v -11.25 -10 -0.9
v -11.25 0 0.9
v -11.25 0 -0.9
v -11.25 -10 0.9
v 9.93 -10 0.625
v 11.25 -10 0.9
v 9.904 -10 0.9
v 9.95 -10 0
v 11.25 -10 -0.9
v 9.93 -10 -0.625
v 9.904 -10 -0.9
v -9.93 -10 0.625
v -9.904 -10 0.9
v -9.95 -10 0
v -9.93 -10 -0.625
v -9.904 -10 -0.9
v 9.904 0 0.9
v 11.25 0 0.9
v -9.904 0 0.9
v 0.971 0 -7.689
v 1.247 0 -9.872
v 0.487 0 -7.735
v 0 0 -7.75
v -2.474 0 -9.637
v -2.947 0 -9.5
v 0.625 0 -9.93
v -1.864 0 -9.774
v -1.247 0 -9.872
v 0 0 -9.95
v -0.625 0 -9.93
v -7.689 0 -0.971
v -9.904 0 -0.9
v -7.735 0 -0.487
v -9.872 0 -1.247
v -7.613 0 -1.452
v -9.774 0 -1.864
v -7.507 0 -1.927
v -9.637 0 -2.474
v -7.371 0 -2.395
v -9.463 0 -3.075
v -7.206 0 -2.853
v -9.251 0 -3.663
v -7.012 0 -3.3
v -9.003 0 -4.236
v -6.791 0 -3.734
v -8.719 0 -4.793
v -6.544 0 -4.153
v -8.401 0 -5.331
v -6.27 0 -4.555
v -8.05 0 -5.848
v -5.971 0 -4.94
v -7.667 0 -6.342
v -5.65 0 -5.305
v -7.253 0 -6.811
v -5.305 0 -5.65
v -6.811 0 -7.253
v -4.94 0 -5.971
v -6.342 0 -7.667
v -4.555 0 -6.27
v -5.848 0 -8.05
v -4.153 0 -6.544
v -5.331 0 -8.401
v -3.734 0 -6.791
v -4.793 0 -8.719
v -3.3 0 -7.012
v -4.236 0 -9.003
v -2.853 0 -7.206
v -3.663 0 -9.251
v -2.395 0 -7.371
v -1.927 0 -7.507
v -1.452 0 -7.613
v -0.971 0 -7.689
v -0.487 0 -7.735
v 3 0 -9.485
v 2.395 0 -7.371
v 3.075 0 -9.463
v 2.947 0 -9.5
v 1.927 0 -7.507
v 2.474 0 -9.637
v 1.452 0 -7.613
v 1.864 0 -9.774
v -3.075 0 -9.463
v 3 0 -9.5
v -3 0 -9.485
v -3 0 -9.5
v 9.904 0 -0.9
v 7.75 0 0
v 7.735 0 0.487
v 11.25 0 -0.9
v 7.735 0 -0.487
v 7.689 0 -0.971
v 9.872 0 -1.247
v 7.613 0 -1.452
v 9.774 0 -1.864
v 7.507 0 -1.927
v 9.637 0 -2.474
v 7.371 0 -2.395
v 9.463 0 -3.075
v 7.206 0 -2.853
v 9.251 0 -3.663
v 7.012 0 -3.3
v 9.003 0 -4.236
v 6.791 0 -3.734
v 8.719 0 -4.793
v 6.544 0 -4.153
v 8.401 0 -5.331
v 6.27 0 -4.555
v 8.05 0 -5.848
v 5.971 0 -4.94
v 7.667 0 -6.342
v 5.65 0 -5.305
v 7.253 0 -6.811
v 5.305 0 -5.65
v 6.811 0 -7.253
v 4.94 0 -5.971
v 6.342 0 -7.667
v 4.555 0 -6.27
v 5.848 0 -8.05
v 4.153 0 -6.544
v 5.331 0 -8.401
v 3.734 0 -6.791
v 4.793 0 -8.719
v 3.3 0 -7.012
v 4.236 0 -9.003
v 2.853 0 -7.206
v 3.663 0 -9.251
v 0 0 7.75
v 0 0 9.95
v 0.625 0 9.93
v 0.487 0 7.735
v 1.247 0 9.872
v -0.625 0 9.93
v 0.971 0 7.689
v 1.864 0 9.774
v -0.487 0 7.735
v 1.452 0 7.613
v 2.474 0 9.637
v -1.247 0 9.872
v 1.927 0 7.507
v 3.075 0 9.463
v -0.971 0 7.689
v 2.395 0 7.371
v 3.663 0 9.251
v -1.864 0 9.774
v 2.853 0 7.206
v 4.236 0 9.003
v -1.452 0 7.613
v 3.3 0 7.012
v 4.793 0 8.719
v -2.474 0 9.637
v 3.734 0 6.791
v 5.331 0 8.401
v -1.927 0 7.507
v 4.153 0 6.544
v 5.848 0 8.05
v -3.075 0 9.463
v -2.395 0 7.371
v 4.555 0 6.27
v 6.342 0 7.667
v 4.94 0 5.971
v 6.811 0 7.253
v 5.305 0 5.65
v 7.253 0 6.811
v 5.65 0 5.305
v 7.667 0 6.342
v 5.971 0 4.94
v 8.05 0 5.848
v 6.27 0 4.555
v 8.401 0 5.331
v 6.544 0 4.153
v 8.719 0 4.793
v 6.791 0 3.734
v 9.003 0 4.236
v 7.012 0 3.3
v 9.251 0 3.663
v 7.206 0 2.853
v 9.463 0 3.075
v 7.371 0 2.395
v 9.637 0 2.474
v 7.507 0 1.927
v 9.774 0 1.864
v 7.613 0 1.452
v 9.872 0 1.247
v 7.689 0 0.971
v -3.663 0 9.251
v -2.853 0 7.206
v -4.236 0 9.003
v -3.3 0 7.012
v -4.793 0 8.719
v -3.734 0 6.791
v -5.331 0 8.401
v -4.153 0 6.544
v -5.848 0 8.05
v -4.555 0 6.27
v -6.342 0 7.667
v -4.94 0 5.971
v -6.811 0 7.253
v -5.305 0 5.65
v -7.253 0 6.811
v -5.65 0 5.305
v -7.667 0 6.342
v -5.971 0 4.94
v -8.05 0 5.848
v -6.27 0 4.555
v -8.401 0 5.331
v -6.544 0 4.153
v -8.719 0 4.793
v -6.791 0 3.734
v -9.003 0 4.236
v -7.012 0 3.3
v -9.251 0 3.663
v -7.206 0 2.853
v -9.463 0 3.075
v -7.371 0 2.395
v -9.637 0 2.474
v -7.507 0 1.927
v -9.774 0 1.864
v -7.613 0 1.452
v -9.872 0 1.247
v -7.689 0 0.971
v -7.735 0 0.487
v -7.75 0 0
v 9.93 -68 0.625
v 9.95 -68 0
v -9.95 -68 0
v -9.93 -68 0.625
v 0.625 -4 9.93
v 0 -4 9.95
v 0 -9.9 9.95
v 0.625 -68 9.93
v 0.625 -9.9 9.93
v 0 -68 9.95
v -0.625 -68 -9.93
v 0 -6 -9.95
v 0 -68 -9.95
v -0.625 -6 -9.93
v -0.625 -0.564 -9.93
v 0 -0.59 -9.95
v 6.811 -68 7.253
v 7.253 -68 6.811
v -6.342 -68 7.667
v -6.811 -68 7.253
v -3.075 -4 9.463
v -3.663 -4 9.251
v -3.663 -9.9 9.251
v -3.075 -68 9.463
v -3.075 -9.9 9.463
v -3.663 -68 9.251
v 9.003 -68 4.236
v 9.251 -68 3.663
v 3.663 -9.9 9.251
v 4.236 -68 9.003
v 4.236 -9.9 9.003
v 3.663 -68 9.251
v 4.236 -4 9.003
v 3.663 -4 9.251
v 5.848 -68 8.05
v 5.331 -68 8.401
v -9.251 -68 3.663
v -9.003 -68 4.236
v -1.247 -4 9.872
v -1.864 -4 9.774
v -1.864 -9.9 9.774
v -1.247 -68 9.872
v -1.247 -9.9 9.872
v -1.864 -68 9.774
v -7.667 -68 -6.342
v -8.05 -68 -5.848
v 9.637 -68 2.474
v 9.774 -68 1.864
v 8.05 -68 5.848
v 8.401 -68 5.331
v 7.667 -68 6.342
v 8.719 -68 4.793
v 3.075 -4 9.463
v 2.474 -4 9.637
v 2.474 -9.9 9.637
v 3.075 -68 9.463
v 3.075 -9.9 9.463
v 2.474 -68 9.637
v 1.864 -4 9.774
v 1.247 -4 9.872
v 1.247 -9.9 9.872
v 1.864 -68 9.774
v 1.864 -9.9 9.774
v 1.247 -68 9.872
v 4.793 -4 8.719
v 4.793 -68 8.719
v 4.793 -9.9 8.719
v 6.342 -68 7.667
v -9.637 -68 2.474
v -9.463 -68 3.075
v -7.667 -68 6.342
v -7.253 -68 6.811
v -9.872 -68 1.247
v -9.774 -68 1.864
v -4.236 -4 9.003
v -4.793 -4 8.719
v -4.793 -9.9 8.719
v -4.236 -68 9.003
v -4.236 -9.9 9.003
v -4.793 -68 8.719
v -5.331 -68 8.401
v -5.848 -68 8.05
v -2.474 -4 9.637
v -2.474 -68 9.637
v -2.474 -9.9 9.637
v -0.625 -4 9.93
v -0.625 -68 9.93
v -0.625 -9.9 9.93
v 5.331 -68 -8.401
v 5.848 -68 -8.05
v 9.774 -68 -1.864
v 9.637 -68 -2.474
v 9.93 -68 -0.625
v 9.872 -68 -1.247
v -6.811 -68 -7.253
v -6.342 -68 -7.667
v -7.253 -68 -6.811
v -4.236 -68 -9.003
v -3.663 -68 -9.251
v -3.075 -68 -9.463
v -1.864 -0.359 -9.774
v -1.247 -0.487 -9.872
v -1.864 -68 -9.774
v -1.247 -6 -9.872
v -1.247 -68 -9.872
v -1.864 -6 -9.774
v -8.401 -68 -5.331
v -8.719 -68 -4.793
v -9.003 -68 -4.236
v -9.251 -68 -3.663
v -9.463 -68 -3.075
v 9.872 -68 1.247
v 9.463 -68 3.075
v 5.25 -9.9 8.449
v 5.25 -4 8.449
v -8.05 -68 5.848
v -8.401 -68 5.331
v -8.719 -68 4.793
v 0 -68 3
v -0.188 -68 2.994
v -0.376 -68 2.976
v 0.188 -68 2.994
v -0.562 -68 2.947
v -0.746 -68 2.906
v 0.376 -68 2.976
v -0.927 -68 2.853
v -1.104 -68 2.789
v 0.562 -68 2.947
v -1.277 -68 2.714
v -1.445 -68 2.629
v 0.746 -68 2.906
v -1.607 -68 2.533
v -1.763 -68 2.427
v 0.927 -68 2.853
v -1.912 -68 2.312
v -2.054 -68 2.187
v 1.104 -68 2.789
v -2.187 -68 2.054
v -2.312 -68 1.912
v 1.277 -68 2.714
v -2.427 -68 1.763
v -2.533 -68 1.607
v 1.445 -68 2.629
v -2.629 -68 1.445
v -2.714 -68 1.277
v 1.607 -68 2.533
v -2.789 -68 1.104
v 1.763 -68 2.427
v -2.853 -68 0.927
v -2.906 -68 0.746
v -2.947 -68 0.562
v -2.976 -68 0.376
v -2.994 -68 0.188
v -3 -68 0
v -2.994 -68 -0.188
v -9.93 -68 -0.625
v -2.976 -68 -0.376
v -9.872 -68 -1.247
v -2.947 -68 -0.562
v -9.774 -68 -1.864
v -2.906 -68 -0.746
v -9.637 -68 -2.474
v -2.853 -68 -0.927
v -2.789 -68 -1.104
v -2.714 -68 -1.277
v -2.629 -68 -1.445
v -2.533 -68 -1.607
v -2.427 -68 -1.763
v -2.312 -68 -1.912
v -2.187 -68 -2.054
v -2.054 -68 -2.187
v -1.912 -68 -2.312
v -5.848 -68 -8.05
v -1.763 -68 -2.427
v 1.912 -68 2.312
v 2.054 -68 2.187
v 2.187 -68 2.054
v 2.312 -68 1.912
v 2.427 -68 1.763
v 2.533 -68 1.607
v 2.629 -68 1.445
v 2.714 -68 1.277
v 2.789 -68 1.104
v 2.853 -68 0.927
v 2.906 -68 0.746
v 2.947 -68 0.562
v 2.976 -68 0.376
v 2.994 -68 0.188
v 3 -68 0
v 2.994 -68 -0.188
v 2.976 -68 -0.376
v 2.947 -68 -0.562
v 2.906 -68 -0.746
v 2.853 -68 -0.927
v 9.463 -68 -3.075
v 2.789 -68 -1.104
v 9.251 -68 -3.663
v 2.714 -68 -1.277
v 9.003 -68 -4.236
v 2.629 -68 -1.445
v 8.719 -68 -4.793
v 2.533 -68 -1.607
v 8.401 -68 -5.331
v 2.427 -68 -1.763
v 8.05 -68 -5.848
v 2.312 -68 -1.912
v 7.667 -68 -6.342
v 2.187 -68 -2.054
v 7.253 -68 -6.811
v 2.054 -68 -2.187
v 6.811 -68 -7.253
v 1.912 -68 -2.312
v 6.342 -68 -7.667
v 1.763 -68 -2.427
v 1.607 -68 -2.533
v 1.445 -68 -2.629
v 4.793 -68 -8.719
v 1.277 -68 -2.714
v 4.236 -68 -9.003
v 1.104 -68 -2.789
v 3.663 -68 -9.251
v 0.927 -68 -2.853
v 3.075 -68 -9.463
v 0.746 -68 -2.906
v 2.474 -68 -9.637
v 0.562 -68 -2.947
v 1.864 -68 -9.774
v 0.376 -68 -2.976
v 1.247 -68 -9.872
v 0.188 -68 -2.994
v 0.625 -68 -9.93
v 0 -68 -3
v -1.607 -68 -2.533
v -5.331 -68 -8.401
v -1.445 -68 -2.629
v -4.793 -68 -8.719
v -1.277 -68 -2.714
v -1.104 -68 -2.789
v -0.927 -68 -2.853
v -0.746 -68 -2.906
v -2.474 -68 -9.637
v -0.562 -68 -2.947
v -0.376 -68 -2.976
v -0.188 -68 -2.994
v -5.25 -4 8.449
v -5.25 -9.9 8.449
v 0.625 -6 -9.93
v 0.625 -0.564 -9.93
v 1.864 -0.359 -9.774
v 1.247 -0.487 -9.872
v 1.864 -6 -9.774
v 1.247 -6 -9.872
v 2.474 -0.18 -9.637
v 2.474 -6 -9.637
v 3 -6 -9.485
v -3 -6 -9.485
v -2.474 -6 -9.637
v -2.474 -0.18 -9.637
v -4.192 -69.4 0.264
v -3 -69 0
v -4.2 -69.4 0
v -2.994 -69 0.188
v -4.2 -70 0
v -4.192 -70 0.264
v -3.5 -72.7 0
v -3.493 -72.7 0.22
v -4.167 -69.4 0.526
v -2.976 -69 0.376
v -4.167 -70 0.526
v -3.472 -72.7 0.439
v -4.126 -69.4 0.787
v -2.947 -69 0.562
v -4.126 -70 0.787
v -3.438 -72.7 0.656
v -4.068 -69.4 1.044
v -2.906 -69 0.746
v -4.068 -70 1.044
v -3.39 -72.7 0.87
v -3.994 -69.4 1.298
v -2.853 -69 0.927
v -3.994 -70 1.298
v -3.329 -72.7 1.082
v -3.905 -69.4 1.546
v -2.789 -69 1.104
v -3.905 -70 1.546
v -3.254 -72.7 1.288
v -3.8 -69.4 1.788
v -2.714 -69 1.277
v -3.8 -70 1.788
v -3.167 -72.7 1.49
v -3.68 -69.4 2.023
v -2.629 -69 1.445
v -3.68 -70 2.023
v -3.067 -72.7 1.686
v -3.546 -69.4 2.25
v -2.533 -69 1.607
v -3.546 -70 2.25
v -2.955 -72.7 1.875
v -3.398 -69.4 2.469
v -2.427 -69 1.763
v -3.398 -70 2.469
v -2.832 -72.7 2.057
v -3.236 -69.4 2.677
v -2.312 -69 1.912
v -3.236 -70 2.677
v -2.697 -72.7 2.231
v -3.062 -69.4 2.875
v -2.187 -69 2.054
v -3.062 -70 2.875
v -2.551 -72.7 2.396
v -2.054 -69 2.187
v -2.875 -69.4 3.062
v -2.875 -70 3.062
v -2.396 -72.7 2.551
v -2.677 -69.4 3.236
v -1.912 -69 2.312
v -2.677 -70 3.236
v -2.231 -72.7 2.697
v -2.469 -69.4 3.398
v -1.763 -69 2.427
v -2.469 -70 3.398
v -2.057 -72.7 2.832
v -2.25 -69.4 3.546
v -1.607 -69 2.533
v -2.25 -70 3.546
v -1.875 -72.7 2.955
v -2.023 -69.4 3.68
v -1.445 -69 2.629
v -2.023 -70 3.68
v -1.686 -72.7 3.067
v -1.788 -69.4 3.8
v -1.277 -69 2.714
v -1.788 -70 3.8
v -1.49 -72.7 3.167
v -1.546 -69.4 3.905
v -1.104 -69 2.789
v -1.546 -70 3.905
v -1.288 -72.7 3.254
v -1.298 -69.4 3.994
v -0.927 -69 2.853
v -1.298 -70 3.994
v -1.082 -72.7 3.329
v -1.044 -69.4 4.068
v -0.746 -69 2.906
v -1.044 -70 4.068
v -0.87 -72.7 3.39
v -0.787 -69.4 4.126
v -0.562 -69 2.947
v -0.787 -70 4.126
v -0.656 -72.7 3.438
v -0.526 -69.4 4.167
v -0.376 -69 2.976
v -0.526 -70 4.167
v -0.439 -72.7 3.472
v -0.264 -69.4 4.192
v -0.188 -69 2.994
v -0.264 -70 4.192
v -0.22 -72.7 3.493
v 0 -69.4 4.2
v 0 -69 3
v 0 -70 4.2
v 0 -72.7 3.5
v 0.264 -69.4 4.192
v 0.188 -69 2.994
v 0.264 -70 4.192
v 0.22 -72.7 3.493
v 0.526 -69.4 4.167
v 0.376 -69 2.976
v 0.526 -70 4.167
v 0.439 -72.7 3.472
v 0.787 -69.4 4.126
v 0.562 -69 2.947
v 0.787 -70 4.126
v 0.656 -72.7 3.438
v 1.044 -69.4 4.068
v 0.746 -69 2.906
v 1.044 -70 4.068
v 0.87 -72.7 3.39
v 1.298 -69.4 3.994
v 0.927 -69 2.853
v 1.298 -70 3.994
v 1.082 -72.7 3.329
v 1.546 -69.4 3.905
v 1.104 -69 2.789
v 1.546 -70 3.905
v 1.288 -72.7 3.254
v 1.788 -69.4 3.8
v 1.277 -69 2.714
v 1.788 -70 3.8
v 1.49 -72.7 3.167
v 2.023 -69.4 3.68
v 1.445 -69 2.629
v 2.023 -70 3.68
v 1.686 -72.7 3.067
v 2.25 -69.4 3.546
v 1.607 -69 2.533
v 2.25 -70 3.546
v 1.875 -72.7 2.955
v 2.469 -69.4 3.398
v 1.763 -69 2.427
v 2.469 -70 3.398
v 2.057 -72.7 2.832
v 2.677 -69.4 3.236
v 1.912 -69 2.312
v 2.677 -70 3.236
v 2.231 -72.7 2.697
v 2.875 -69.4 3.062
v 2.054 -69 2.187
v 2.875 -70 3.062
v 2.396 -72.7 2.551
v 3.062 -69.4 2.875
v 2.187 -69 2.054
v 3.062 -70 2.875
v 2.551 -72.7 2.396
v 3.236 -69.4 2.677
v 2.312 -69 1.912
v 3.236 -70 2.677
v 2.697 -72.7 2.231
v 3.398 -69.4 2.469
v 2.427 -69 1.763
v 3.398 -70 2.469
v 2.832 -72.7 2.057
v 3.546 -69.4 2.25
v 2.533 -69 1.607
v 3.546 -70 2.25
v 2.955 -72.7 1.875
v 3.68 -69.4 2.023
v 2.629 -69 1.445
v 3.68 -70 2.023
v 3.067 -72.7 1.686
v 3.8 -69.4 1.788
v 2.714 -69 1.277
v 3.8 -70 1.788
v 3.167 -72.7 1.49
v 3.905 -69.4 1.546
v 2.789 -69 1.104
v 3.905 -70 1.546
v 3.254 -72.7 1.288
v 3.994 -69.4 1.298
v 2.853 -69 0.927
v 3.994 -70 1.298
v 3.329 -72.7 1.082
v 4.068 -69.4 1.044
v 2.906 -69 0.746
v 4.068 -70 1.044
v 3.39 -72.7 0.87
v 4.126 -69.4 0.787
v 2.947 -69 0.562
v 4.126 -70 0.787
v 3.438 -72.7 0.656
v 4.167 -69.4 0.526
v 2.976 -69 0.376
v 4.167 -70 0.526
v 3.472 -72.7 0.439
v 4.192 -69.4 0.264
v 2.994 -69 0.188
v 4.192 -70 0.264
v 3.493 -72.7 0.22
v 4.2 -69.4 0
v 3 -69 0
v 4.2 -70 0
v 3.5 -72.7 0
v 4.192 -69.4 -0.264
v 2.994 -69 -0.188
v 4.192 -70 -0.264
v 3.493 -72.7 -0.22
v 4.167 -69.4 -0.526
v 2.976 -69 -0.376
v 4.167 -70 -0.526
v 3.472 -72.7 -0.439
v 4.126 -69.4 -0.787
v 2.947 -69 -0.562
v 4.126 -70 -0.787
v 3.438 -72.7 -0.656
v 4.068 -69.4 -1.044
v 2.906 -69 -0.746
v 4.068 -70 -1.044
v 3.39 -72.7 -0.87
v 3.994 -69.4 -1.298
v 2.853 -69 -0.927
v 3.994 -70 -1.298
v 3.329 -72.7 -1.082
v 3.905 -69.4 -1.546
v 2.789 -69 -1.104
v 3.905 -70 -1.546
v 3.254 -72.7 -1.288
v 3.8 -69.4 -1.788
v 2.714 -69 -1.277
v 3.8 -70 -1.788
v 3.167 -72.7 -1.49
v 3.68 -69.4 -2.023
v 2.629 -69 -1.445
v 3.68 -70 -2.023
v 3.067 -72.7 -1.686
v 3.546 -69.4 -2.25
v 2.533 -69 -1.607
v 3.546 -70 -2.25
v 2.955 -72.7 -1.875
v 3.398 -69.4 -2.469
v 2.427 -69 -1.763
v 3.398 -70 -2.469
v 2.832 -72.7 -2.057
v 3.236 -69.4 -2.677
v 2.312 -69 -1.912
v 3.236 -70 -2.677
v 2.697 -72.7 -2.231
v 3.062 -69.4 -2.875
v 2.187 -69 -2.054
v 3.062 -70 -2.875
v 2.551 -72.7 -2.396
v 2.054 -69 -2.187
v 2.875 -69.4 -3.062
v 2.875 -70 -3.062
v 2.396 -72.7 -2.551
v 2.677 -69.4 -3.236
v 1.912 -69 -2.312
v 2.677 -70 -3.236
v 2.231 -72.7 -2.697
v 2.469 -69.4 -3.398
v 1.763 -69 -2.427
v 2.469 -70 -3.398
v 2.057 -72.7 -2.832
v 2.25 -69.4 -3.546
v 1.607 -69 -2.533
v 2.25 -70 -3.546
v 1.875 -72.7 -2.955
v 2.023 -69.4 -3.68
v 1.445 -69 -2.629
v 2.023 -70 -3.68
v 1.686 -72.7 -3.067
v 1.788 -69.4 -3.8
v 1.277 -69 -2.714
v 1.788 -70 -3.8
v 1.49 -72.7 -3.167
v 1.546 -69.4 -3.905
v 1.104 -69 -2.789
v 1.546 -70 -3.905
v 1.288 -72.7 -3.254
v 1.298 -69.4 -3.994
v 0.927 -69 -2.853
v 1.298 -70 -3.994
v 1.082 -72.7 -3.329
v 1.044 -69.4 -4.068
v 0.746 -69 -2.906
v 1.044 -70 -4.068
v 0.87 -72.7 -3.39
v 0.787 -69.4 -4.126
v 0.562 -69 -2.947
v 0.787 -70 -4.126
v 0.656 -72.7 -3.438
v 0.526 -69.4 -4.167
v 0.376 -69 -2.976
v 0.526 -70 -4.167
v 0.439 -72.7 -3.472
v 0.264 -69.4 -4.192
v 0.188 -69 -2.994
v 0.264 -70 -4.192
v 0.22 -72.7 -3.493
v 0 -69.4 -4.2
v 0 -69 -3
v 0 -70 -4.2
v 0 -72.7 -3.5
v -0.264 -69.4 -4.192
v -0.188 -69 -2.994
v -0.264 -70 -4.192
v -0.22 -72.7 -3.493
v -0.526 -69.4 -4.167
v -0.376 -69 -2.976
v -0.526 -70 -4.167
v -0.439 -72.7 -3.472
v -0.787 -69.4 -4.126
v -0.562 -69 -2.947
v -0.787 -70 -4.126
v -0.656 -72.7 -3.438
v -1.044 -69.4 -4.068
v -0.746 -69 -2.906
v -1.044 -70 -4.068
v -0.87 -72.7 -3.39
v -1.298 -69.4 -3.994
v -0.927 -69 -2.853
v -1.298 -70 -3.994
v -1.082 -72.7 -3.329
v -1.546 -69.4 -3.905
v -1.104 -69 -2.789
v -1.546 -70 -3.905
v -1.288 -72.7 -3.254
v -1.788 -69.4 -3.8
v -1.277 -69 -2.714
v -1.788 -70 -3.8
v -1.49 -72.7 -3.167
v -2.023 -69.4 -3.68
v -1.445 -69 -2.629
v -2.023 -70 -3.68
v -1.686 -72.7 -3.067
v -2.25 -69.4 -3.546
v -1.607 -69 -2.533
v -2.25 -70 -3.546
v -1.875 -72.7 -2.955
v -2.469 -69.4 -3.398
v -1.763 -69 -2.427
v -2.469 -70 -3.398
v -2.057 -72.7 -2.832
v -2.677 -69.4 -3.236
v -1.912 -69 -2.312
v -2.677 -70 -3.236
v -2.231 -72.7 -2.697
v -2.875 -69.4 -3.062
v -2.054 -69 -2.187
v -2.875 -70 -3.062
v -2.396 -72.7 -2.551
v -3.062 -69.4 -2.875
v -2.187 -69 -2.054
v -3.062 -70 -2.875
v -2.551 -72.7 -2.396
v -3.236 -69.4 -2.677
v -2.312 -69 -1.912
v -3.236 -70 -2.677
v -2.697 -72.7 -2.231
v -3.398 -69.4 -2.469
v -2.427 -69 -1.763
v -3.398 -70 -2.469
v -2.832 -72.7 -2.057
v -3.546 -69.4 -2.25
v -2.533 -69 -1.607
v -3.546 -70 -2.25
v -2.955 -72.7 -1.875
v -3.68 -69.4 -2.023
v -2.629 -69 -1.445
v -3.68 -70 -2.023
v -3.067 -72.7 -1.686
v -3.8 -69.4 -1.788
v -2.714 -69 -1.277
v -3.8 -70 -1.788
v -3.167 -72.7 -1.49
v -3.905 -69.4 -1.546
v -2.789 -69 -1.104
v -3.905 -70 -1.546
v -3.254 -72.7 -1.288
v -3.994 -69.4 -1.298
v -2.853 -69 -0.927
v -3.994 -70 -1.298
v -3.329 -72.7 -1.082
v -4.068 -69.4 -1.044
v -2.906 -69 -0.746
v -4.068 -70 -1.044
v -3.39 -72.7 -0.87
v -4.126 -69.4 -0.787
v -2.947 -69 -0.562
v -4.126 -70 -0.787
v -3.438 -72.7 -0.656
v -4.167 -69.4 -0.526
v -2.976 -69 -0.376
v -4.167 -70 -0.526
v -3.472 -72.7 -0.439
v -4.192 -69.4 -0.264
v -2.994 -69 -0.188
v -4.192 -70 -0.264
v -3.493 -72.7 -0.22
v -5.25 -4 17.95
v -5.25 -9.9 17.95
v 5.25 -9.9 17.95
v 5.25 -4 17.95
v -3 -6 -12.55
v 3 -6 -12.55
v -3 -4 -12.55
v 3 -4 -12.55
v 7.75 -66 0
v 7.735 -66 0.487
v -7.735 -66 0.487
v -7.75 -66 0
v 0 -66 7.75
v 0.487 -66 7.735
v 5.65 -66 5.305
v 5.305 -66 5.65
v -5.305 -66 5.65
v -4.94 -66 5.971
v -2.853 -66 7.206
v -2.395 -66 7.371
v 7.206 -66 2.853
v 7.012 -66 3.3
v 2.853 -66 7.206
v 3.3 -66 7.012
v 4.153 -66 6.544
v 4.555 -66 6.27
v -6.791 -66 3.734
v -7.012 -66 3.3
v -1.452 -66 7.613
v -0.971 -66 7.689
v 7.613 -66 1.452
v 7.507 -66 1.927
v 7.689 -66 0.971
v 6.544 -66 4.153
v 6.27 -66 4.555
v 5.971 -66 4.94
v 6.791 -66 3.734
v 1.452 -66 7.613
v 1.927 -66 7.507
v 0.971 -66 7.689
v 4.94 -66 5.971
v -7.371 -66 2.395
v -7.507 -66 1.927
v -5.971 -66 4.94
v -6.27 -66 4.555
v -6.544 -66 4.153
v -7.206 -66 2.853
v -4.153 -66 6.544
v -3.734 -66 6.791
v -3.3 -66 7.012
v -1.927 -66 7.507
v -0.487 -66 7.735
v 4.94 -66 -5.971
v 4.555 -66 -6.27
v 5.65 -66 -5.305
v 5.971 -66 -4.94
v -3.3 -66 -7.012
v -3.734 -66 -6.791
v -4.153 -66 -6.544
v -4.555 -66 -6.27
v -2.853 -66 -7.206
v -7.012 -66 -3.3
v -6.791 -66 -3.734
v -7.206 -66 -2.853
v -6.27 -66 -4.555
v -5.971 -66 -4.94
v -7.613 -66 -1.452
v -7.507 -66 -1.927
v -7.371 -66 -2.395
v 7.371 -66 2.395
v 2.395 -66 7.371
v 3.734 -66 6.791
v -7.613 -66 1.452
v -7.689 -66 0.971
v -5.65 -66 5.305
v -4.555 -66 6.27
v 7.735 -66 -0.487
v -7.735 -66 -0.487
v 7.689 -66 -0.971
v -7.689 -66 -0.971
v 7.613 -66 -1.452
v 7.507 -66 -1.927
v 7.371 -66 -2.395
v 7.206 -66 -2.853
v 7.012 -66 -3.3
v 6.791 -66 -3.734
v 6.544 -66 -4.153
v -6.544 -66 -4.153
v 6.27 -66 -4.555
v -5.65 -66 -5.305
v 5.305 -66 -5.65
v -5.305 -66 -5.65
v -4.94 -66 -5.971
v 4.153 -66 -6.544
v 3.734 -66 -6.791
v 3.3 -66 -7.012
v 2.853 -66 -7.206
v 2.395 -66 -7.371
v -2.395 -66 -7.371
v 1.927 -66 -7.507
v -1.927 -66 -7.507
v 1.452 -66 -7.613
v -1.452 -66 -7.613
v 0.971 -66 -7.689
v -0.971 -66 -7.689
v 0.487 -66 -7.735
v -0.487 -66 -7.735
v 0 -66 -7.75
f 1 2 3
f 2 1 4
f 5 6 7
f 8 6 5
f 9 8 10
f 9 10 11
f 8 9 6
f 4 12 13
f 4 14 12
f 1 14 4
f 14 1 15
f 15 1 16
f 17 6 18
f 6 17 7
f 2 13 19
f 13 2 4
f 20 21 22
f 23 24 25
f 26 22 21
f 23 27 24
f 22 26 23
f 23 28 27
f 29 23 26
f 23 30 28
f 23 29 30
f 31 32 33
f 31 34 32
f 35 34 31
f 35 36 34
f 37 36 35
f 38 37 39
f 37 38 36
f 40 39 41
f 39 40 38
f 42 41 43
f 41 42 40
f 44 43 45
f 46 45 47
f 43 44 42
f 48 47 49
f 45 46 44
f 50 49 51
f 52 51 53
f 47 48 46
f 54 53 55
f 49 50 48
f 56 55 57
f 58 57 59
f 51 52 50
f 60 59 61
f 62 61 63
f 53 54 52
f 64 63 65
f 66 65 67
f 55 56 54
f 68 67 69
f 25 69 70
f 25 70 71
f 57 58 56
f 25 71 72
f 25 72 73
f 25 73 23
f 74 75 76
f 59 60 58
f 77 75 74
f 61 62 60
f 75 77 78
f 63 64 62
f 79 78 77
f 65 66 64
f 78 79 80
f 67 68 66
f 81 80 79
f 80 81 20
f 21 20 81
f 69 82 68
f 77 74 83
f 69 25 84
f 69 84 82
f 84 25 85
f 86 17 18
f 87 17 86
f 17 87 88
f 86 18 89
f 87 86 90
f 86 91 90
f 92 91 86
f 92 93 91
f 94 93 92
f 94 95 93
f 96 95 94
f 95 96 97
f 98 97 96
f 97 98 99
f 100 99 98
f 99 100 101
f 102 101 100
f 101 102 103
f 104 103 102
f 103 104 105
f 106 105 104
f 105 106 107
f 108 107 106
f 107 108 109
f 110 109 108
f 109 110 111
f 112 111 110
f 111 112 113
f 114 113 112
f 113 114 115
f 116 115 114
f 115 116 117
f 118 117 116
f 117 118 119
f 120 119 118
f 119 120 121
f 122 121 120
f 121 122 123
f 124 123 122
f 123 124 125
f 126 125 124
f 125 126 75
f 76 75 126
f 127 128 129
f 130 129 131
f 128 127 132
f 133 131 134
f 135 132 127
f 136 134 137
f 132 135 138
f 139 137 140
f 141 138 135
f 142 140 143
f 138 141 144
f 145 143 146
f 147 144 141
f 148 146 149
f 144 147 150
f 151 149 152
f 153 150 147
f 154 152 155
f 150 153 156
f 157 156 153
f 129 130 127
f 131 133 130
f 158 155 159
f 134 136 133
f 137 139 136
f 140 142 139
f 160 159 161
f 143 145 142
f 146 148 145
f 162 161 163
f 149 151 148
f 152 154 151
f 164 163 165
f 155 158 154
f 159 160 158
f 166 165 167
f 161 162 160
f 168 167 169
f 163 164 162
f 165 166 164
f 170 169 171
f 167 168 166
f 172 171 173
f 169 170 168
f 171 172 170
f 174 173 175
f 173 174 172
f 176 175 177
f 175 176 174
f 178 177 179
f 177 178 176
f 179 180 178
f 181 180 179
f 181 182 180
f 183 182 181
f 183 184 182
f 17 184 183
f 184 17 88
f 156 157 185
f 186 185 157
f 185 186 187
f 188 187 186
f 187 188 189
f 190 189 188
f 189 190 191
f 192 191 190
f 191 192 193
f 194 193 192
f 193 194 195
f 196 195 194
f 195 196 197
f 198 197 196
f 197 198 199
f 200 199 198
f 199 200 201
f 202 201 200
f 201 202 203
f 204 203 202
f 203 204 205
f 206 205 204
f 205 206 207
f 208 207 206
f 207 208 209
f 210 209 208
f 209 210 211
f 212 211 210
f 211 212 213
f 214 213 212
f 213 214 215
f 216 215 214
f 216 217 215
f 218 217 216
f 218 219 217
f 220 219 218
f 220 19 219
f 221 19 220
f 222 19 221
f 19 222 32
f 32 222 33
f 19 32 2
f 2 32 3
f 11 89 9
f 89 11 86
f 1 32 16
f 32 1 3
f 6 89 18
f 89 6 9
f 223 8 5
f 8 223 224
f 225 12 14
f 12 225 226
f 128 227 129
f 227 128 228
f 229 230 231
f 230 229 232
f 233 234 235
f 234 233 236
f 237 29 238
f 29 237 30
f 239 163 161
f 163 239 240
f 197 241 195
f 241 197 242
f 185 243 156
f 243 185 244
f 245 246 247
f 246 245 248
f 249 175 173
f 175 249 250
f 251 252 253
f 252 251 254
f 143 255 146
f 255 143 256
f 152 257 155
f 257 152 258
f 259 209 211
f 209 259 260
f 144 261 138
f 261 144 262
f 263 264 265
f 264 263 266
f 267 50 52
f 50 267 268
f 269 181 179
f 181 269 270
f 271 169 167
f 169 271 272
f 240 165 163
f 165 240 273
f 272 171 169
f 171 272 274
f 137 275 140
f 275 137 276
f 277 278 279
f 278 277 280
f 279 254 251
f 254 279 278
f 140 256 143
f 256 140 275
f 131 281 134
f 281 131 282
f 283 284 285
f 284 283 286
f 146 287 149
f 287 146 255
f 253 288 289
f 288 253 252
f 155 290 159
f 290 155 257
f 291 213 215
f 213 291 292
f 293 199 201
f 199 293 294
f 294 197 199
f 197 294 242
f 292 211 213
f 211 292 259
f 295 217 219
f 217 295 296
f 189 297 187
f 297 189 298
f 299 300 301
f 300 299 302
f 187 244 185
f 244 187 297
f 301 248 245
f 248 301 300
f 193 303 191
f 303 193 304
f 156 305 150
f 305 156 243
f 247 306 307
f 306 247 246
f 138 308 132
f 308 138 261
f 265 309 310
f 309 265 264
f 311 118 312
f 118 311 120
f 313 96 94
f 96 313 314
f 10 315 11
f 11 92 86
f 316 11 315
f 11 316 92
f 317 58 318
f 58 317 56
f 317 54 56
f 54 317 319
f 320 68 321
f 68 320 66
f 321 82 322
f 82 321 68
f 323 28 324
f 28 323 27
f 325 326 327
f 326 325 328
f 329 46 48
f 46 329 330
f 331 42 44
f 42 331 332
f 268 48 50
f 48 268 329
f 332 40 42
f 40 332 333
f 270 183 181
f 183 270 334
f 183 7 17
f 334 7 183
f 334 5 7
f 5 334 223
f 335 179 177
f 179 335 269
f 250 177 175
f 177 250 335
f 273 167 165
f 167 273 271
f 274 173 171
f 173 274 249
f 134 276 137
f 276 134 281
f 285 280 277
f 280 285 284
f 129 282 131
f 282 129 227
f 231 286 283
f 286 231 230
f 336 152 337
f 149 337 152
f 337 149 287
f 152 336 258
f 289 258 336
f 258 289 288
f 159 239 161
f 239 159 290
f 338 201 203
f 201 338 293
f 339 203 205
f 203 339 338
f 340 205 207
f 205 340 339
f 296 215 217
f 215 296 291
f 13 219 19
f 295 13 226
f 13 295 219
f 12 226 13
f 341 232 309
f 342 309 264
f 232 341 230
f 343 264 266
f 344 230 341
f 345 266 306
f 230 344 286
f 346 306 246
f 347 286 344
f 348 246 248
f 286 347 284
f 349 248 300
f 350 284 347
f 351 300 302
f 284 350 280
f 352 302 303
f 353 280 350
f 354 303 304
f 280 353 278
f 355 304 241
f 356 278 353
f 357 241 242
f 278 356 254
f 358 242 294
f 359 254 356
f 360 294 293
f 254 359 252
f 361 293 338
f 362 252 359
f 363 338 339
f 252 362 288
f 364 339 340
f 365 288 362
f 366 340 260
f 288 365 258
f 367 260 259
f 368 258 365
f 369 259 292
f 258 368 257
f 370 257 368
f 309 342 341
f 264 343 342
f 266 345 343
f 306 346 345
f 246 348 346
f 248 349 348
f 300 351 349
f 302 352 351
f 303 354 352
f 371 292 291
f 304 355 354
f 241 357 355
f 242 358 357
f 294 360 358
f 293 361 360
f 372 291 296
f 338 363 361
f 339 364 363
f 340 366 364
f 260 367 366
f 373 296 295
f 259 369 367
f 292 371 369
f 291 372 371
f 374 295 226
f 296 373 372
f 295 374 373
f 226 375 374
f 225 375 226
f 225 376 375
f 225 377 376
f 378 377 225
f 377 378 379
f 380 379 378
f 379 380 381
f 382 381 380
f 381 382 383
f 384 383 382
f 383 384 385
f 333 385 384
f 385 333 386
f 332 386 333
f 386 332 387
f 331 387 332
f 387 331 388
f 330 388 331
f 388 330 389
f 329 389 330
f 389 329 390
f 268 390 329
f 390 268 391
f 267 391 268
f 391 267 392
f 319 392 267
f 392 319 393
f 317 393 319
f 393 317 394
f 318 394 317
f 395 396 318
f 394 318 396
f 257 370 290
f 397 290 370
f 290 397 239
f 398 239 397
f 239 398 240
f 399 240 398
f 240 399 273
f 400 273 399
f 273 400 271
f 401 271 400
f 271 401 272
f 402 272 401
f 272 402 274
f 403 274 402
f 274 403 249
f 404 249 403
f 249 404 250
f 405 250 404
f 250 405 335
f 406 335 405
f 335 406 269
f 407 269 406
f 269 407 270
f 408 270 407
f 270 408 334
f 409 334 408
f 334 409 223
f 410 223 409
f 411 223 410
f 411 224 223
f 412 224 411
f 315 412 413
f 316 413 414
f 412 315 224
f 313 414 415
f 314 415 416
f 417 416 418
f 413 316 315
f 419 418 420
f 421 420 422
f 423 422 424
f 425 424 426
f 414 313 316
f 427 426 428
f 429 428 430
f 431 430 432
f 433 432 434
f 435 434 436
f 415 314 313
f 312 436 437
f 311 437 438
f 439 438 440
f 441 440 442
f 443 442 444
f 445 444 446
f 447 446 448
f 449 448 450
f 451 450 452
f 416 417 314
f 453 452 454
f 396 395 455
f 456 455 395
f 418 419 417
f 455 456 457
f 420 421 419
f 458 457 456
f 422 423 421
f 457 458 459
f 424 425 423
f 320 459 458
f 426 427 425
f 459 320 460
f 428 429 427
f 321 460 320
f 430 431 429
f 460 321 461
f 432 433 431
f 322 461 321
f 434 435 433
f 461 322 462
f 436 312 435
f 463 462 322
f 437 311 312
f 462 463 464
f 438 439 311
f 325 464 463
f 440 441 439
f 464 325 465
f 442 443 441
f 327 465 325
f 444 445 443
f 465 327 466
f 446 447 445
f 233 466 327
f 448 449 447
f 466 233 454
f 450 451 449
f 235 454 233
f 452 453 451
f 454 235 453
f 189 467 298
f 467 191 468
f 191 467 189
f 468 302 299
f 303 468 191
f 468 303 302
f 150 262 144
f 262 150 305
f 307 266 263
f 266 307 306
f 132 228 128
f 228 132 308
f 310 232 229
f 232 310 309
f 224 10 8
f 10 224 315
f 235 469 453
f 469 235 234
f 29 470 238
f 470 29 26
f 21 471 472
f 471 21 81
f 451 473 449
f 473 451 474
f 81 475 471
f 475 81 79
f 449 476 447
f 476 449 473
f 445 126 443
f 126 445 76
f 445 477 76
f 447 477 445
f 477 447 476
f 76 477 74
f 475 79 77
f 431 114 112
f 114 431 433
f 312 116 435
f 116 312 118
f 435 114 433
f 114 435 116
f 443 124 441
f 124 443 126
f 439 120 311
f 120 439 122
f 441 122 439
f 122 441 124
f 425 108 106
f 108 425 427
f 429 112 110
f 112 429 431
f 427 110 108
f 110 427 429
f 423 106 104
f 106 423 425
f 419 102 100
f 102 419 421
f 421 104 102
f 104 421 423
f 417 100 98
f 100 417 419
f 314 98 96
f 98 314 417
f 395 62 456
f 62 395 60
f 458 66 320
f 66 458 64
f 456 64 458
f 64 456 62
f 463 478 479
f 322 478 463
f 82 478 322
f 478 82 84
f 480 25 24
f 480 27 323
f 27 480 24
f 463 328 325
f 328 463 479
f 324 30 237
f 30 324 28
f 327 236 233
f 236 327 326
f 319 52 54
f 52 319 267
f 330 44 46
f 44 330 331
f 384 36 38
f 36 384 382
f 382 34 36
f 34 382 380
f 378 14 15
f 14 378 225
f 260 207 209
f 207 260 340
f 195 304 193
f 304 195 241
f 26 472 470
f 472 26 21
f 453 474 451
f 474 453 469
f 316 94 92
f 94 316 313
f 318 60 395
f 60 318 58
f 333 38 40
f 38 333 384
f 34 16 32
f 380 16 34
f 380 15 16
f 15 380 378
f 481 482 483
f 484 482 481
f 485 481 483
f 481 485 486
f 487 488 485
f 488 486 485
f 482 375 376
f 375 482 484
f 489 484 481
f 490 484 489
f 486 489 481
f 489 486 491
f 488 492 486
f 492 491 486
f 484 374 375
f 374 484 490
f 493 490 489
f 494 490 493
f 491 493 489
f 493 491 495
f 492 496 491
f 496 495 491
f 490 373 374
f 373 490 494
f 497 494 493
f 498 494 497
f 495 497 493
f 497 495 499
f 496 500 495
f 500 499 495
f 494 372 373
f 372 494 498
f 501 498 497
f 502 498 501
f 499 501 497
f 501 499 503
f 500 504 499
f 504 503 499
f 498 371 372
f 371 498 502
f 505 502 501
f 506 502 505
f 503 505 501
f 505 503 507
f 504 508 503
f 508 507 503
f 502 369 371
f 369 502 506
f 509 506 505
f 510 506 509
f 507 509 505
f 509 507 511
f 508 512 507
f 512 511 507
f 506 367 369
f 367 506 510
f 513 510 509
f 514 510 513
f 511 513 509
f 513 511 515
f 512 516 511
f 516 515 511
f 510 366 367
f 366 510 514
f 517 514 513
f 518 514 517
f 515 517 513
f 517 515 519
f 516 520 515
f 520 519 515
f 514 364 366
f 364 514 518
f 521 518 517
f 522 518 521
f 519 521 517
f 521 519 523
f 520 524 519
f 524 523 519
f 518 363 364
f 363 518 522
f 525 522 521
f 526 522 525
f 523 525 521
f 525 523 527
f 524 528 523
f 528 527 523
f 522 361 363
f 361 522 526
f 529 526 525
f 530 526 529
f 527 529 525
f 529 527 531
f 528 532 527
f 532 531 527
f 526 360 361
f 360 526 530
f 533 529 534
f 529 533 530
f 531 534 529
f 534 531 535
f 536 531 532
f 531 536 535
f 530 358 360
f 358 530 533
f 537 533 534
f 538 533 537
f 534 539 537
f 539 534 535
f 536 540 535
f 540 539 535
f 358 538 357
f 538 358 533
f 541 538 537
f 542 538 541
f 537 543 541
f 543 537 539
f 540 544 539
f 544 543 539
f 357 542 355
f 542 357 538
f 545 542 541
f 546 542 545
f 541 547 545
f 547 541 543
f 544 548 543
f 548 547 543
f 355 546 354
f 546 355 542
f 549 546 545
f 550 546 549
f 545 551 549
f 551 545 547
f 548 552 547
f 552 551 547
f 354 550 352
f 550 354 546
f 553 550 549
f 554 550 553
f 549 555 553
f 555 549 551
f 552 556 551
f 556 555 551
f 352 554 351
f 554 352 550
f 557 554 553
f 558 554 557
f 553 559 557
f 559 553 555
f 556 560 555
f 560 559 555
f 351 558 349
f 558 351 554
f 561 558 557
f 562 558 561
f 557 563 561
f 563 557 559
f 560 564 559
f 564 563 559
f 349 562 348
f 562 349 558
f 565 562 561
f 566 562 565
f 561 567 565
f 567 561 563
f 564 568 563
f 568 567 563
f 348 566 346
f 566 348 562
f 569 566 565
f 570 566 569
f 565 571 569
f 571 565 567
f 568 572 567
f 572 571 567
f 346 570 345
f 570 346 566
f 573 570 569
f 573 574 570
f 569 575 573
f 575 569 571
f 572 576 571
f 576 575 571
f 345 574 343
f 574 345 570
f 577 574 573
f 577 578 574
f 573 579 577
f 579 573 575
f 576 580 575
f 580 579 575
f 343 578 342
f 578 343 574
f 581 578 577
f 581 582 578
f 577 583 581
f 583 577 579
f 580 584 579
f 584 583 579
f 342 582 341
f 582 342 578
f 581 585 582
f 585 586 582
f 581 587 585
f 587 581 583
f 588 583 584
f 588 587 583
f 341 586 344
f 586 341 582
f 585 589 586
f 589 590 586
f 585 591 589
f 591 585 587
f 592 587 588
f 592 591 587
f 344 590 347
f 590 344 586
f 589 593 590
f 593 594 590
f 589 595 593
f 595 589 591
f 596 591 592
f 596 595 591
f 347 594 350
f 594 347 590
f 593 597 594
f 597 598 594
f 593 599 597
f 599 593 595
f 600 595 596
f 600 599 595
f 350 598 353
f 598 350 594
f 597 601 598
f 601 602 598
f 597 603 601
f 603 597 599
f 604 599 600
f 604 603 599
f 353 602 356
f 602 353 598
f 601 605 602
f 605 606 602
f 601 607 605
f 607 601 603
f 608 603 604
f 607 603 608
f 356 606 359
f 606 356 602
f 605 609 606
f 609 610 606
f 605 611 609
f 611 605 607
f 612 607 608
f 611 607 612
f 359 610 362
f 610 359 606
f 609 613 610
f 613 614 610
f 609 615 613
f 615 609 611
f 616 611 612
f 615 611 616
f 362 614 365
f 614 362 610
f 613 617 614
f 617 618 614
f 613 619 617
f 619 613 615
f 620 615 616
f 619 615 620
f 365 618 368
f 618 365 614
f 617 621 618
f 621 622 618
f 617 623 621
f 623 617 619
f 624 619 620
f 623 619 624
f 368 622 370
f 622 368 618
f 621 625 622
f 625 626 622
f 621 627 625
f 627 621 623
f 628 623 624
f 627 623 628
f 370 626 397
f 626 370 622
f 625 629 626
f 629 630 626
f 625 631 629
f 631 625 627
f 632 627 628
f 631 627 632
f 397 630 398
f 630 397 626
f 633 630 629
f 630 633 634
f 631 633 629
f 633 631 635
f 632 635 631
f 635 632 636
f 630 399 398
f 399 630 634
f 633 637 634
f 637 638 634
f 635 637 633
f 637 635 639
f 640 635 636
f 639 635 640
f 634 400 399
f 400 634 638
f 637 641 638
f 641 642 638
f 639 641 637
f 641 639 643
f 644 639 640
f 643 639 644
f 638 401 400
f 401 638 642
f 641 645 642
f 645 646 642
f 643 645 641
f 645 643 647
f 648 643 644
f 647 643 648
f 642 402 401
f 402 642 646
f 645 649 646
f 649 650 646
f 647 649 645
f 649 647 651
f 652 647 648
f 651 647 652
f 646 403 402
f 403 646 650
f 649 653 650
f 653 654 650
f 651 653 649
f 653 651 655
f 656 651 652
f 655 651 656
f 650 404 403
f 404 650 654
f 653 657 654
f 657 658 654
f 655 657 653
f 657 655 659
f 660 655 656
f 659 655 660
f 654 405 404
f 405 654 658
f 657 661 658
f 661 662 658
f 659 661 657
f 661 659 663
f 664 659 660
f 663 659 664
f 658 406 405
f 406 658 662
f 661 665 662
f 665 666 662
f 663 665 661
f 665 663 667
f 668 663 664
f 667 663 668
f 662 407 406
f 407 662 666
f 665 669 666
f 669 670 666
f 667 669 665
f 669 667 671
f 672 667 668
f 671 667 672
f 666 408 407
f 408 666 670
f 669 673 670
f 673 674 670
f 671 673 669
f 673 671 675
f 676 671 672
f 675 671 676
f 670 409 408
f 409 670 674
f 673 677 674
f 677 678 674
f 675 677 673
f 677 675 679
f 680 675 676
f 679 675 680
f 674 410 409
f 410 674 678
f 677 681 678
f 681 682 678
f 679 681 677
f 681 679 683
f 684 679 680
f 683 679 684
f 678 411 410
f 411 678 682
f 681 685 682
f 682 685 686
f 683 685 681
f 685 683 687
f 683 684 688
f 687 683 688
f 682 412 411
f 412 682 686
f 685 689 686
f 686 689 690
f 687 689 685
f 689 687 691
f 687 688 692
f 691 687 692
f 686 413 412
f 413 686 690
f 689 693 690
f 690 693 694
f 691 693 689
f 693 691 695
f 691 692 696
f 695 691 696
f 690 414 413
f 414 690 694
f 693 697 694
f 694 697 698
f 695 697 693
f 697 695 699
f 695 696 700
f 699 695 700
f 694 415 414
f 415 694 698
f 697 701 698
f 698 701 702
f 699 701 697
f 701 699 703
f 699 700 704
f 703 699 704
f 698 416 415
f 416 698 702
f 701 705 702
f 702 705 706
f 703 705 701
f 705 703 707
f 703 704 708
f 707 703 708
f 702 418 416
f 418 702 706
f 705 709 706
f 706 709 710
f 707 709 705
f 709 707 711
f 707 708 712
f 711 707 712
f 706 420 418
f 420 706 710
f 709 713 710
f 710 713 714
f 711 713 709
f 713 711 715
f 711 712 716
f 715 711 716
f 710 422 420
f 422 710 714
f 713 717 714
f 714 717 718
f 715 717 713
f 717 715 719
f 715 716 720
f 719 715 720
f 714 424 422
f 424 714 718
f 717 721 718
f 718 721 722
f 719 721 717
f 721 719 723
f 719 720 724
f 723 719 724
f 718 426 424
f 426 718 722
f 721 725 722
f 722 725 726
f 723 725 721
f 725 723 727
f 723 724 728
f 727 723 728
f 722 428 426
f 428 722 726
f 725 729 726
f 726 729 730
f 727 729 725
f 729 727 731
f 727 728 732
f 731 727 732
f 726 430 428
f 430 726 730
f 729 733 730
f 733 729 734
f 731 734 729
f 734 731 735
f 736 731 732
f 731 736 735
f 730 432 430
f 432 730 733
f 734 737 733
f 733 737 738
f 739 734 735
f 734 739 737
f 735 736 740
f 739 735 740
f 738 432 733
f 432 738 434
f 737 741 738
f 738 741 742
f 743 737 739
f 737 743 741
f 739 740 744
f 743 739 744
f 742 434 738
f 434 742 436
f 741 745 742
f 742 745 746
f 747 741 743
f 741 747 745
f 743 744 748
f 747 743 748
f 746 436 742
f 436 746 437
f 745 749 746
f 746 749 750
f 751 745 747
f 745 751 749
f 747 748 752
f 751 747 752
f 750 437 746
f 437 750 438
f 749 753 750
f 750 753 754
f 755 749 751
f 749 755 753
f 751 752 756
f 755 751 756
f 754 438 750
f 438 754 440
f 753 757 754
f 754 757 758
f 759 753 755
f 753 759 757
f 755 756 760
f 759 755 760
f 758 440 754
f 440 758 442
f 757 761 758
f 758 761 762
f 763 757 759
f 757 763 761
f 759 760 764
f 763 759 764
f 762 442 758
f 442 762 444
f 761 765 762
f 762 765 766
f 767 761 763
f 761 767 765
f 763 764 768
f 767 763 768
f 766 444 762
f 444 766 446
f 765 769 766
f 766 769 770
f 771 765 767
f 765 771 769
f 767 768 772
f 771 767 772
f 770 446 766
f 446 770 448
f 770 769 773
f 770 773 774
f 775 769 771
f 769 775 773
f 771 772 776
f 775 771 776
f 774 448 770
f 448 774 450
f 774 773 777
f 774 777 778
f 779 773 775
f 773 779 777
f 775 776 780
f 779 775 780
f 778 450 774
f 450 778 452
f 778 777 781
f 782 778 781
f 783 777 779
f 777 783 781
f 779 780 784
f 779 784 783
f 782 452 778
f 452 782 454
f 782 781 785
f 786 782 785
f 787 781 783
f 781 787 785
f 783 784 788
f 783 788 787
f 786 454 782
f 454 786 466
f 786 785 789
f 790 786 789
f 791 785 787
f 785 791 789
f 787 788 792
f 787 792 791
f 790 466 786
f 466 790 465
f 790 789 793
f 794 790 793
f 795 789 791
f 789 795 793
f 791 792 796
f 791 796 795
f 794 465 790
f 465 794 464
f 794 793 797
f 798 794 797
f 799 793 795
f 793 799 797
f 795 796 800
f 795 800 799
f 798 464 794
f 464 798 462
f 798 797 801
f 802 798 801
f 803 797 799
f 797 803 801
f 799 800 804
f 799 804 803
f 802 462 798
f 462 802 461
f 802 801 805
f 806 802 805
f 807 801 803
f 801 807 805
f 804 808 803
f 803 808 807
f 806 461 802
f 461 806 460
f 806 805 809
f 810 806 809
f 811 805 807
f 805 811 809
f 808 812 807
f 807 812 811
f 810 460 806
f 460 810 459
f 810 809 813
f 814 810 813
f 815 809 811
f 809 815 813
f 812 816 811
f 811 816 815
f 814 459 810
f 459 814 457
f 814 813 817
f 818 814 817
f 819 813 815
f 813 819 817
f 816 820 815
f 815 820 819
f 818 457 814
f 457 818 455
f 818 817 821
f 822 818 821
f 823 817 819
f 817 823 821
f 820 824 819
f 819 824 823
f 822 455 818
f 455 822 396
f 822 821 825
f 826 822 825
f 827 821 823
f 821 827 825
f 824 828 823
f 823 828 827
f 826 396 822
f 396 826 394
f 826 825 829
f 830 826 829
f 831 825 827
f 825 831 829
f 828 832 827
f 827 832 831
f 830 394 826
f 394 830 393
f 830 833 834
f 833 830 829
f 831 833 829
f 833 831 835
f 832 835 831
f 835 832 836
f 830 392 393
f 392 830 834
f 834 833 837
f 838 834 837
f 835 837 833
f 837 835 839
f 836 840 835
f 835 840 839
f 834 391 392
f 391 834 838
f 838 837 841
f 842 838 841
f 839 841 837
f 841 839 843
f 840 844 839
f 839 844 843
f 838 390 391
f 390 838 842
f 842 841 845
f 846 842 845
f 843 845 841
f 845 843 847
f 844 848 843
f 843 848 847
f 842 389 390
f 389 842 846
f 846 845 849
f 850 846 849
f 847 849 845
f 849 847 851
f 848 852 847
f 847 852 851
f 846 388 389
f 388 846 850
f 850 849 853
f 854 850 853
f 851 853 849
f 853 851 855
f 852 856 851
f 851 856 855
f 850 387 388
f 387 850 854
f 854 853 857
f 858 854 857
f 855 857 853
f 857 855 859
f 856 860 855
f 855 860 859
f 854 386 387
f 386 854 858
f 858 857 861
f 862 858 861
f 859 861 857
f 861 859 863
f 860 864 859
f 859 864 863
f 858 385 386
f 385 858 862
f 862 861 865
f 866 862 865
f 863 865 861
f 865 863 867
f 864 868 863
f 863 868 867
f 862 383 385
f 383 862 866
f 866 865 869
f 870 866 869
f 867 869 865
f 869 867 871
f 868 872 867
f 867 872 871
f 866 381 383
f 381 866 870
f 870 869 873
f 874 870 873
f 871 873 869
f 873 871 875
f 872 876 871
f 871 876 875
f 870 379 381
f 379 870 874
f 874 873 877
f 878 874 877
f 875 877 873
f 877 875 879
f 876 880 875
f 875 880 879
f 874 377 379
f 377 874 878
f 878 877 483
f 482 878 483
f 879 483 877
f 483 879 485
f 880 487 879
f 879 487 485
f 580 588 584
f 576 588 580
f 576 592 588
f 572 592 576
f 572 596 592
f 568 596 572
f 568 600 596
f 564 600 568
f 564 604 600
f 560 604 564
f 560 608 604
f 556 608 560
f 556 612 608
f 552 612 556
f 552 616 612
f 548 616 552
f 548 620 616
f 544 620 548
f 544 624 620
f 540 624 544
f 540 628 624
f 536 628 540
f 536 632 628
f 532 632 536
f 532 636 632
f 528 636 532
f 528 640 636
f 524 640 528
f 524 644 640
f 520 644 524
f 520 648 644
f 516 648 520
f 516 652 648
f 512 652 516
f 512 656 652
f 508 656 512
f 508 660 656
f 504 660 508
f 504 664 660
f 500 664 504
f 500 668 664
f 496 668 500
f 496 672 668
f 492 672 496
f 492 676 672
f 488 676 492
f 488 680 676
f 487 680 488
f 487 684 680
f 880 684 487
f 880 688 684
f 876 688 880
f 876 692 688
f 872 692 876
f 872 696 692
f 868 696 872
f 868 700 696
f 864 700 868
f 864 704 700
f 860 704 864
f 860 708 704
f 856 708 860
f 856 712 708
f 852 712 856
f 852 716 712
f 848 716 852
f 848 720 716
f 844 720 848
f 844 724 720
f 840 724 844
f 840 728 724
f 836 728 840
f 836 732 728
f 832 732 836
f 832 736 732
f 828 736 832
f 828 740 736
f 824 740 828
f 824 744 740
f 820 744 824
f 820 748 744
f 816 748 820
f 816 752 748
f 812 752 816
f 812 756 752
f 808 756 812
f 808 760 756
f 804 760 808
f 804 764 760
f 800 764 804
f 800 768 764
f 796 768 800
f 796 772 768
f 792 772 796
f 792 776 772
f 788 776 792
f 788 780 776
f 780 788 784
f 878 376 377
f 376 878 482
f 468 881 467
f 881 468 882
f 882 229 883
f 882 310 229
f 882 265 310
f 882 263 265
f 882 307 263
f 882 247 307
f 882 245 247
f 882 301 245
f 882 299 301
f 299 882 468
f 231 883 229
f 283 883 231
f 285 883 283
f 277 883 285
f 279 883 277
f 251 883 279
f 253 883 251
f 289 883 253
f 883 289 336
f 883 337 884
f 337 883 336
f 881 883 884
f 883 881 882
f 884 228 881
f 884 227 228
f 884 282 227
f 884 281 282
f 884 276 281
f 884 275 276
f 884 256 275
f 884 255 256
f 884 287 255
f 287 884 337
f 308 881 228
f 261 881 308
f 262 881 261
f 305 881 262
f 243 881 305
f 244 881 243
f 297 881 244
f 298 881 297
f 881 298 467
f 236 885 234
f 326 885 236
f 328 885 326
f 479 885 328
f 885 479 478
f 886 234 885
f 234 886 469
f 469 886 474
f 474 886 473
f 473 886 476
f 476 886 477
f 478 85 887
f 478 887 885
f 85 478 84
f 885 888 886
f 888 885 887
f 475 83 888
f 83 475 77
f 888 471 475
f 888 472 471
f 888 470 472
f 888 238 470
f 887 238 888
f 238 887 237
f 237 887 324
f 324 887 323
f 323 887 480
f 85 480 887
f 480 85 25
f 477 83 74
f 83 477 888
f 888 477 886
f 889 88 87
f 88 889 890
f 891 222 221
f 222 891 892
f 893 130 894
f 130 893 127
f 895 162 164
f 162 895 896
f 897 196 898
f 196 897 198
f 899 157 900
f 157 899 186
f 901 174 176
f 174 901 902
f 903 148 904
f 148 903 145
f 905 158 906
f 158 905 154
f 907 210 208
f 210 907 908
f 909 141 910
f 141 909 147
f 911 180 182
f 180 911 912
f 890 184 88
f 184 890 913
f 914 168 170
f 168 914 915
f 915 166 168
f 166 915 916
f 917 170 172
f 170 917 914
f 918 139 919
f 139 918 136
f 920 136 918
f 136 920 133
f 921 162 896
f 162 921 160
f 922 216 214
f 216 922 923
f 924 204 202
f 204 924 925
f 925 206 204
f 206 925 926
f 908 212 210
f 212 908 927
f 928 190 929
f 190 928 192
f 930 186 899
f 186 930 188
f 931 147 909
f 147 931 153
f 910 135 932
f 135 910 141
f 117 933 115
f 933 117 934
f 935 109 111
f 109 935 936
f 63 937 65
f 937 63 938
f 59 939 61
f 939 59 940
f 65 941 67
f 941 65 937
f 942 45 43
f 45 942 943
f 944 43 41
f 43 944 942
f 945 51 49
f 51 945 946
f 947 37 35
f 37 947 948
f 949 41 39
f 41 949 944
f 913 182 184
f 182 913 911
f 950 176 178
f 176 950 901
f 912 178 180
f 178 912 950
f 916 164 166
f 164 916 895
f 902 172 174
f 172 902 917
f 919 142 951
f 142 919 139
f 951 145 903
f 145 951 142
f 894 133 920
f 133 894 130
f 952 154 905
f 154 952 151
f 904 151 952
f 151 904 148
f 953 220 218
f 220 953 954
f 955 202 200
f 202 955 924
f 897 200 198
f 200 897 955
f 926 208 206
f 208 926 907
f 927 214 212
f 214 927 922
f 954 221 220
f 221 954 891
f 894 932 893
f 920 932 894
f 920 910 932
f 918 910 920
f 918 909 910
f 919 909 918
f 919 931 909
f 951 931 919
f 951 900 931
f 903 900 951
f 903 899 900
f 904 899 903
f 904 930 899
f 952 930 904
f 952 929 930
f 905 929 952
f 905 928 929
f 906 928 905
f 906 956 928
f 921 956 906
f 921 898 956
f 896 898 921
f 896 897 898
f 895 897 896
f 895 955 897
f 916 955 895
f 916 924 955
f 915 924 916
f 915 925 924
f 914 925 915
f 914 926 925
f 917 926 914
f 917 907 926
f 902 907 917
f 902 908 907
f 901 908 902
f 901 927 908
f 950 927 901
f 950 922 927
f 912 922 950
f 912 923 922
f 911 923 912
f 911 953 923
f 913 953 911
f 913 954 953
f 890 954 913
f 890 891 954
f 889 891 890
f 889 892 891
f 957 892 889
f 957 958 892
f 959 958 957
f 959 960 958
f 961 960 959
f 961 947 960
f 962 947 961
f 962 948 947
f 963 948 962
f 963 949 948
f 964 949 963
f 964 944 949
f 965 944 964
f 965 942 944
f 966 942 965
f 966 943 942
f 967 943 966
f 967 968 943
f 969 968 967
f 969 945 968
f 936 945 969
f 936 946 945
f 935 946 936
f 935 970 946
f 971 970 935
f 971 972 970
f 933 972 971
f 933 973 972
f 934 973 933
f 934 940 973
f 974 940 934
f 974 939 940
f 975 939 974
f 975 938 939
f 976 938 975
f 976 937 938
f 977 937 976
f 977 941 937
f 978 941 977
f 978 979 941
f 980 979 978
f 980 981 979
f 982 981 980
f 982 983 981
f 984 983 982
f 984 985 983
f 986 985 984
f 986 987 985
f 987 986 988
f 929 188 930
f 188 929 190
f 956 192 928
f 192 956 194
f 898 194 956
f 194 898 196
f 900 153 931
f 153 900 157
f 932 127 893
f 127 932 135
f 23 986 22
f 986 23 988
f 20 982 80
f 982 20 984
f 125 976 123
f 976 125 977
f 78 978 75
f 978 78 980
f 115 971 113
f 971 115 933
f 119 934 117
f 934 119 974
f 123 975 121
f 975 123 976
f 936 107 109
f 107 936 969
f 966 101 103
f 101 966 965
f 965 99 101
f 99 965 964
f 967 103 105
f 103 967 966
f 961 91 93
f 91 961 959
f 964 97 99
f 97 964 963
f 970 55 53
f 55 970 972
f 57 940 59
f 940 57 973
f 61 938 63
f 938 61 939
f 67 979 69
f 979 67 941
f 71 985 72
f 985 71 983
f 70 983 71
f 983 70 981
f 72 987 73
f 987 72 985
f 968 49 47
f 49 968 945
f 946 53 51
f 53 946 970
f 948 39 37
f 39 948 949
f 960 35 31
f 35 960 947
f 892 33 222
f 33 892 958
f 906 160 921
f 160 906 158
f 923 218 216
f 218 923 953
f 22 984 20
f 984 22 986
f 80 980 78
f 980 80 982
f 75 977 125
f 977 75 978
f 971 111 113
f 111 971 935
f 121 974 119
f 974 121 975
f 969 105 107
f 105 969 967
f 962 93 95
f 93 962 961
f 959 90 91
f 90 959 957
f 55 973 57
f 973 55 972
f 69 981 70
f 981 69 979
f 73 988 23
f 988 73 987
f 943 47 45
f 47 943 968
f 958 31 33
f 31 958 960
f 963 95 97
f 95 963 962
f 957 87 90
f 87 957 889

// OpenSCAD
$fn=100;

diameter=[19.9,15.5];
height=[68,66];

track=[1.3,1.8,10];

stopper_big=[8,10.5,5]; //print1

stopper_big=[8,10.5,10-4.1+0.7]; //print2
stopper_big=[8,10.5,10-4.1]; //print3

stopper_big_height=3.7; //print1

stopper_big_height=3; //print2
stopper_big_height=4; //print3


guider_height=0; //print2

guider=[2.6,6,6];
guider_expand=3.05;
guider_expand_height=2;


knob=
[
	[0,0],
	[3,0],
	[3,1],
	[4.2,1.4],
	[4.2,2],
	[3.5,4.7],
	[0,4.7],
];


rotate(90,[1,0,0])
compressor();



module compressor()
{
	difference()
	{
		union()
		{
			cylinder(height[0], d=diameter[0]);

			translate([0,0,height[0]])
				knob();

			for (i = [-1:0])
			{
				translate([i*(diameter[0]/2+track[0]),-track[1]/2,0])
					cube([diameter[0]/2+track[0], track[1], track[2]]);
			}

			translate([-stopper_big[1]/2,0,stopper_big_height])
				cube([stopper_big[1], diameter[0]/2+stopper_big[0], stopper_big[2]]);

			translate([0,0,guider_height])
			hull()
			{
				translate([-guider[1]/2,-diameter[0]/2-guider[0],guider[2]-guider_expand_height])
					cube([guider[1], diameter[0]/2+guider[0], guider_expand_height]);
			
				translate([-guider[1]/2,-diameter[0]/2-guider[0]+guider_expand,0])
					cube([guider[1], diameter[0]/2+guider[0]-guider_expand, guider[2]]);
				
			}
		}

		cylinder(height[1], d=diameter[1]);
	}
}

module knob()
{
	rotate_extrude()
		polygon(knob);
}
